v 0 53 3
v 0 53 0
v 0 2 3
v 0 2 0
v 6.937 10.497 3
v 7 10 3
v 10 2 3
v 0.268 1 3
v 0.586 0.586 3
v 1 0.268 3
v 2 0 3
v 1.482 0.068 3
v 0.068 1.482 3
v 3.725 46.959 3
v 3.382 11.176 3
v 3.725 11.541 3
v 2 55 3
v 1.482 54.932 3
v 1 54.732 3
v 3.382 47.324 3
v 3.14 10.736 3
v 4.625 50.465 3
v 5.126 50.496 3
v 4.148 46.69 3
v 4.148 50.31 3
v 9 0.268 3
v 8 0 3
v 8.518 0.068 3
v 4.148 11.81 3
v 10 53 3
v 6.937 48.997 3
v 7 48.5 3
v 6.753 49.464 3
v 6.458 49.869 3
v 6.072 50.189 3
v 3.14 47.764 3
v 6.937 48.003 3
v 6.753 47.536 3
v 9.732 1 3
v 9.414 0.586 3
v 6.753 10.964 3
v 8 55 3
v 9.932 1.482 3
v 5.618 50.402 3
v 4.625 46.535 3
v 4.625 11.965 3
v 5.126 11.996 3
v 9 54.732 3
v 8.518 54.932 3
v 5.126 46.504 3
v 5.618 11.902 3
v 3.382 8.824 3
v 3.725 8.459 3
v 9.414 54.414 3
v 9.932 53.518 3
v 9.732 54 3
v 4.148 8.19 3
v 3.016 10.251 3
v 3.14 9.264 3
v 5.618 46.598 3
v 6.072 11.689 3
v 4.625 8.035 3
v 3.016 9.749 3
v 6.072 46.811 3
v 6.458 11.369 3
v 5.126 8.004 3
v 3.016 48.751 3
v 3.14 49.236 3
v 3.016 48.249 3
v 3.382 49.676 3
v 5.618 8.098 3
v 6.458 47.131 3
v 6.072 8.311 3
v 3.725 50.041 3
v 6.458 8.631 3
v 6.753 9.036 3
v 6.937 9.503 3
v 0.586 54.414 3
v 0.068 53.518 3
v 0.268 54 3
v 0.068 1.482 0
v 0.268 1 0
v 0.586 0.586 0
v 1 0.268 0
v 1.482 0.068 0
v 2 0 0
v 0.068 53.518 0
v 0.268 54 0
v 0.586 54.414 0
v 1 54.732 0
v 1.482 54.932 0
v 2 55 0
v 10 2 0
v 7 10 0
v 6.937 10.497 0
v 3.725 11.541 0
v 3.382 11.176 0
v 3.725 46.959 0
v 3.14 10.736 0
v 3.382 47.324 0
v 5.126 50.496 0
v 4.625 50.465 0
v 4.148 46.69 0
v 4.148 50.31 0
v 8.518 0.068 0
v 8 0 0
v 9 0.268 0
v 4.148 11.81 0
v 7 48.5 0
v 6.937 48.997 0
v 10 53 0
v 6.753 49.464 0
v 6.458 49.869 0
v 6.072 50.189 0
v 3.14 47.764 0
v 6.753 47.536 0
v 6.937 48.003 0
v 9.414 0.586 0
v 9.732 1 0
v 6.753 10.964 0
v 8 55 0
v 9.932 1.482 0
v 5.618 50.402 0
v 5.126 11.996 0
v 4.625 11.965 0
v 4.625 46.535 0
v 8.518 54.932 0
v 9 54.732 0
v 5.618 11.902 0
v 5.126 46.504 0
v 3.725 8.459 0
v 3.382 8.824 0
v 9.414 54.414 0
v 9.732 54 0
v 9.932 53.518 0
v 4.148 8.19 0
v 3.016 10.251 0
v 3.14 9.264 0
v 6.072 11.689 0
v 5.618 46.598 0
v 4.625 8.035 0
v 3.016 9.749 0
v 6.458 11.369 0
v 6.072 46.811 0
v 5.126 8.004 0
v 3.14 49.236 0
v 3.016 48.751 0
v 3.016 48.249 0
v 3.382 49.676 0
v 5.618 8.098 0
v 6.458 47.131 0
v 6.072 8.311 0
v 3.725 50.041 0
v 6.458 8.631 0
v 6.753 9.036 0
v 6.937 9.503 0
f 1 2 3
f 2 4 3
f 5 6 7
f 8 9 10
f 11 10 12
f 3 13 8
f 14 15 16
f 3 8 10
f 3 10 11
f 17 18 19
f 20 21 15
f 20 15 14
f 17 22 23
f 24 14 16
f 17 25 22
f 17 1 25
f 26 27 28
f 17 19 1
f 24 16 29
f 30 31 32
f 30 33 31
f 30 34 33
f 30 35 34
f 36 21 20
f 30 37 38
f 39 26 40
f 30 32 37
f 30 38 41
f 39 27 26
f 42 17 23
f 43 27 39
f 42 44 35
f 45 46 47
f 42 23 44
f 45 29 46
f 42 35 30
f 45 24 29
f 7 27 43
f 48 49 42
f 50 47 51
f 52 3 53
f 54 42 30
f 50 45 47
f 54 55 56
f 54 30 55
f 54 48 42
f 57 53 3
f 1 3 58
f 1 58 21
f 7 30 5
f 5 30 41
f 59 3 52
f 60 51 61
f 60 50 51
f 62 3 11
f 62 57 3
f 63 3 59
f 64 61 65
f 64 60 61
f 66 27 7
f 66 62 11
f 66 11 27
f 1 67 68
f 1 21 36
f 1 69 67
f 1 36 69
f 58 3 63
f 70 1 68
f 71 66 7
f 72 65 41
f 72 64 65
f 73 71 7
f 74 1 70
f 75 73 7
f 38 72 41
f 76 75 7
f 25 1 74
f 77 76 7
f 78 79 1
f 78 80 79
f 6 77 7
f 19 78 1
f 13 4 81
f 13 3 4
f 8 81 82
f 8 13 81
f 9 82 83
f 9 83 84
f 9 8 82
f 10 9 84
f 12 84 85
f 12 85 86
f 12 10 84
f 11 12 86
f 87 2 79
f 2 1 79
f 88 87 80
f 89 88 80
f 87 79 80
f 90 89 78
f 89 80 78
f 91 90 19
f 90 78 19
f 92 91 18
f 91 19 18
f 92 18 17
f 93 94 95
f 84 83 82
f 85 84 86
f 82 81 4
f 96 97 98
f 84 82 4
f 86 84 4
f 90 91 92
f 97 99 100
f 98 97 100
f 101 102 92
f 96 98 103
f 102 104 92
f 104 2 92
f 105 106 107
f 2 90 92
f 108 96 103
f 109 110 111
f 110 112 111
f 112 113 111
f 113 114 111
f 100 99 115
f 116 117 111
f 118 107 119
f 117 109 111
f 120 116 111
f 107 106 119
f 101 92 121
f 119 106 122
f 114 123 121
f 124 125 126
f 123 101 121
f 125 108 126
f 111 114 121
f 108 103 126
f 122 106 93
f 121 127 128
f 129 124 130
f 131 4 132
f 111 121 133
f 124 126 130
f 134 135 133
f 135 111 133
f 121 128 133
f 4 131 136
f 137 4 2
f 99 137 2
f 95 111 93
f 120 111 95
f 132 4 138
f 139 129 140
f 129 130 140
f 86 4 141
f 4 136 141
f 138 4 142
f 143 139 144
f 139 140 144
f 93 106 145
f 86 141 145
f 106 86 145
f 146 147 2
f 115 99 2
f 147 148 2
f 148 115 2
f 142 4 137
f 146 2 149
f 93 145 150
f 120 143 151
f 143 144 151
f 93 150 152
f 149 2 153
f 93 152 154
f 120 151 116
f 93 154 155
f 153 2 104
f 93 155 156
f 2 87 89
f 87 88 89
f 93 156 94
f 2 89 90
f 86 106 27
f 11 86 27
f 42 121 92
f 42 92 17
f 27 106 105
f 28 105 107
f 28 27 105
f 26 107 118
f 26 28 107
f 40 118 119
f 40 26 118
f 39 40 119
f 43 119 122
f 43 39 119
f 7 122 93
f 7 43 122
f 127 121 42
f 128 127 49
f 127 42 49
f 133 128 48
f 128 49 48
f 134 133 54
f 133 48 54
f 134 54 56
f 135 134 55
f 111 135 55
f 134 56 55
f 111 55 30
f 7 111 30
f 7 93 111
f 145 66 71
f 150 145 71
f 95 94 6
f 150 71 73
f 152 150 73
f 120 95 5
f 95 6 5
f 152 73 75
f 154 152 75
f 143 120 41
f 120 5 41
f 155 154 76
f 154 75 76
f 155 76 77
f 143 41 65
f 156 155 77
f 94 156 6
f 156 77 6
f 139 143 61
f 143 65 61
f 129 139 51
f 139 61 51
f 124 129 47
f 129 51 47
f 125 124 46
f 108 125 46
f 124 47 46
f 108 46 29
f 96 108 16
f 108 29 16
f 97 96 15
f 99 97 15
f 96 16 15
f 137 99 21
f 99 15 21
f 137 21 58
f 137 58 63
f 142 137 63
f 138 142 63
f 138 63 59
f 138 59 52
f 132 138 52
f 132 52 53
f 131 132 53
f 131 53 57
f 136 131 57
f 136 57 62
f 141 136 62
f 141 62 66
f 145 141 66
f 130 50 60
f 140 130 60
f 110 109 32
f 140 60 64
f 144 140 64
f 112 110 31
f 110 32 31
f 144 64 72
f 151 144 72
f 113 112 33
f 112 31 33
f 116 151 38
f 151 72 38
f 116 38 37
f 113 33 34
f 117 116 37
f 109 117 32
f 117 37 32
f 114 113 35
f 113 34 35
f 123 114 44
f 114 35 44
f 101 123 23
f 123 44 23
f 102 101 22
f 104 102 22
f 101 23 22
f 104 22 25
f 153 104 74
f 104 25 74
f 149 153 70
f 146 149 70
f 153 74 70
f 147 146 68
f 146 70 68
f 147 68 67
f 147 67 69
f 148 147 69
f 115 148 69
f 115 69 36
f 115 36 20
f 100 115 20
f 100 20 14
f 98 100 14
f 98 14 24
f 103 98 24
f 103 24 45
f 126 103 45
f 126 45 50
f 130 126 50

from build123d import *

# Parameters (mm, degrees)
CYLINDER001_R     = 2
CYLINDER001_DEPTH = 10
CYLINDER_R        = 2
CYLINDER_DEPTH    = 10
BOX_W             = 10
BOX_H             = 55
BOX_DEPTH         = 3
FILLET_R          = 2


with BuildPart() as h_bolt_l:
    # Cylinder001 → Cylinder001 (new body)
    with BuildSketch(Plane(origin=(5, 10, -4), x_dir=(1, 0, 0), z_dir=(0, 0, 1))):
        Circle(CYLINDER001_R)
    extrude(amount=CYLINDER001_DEPTH)


with BuildPart() as fusion:
    # Cylinder → Cylinder (new body)
    with BuildSketch(Plane(origin=(5, 48.5, -4), x_dir=(1, 0, 0), z_dir=(0, 0, 1))):
        Circle(CYLINDER_R)
    extrude(amount=CYLINDER_DEPTH)

    # Fusion: union h_bolt_l
    add(h_bolt_l.part)


with BuildPart() as fillet_body:
    # Box → Box (new body)
    with BuildSketch(Plane.XY):
        with Locations((5, 27.5)):
            Rectangle(BOX_W, BOX_H)
    extrude(amount=BOX_DEPTH)

    # Cut: cut Fusion
    add(fusion.part, mode=Mode.SUBTRACT)

    # Fillet
    fillet_edges = [fillet_body.edges().sort_by_distance(p)[0] for p in [
        (0, 0, 1.5),
        (0, 55, 1.5),
        (10, 0, 1.5),
        (10, 55, 1.5),
    ]]
    fillet(fillet_edges, radius=FILLET_R)


solid = fillet_body.part
